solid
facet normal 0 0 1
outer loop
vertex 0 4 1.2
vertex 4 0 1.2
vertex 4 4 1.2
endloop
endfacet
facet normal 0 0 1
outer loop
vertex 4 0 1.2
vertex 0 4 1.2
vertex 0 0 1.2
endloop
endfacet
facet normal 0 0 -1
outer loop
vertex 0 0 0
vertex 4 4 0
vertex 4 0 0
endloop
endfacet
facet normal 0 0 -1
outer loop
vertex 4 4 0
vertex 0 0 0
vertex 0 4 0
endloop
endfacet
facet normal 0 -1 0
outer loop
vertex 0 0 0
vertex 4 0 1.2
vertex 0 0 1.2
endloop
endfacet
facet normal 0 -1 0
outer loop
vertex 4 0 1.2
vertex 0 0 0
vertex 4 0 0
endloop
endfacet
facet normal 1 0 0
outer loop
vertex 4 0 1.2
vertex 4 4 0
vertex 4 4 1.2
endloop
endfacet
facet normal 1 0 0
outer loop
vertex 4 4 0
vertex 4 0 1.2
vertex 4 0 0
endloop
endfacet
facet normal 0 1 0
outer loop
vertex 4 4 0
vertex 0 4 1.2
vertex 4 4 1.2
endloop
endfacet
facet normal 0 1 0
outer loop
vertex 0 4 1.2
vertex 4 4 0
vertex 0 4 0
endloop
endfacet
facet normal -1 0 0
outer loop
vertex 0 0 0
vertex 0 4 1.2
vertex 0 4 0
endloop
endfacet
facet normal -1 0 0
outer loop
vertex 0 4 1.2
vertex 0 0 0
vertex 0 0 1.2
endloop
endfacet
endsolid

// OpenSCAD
/* Warning, this is a very basic generator with a lot of approximation 
input data : [TFBGA, 2PW, 4x4x1.2mm, 16, , B, C04-00549B]
generated by com.zoubworld.electronics.cad.model3d.Basic
Date : Sun Feb 15 10:50:48 CET 2026
*/

//body
color("black")
translate([0,0,0])
cube([4.0,4.0,1.2], center=false);
